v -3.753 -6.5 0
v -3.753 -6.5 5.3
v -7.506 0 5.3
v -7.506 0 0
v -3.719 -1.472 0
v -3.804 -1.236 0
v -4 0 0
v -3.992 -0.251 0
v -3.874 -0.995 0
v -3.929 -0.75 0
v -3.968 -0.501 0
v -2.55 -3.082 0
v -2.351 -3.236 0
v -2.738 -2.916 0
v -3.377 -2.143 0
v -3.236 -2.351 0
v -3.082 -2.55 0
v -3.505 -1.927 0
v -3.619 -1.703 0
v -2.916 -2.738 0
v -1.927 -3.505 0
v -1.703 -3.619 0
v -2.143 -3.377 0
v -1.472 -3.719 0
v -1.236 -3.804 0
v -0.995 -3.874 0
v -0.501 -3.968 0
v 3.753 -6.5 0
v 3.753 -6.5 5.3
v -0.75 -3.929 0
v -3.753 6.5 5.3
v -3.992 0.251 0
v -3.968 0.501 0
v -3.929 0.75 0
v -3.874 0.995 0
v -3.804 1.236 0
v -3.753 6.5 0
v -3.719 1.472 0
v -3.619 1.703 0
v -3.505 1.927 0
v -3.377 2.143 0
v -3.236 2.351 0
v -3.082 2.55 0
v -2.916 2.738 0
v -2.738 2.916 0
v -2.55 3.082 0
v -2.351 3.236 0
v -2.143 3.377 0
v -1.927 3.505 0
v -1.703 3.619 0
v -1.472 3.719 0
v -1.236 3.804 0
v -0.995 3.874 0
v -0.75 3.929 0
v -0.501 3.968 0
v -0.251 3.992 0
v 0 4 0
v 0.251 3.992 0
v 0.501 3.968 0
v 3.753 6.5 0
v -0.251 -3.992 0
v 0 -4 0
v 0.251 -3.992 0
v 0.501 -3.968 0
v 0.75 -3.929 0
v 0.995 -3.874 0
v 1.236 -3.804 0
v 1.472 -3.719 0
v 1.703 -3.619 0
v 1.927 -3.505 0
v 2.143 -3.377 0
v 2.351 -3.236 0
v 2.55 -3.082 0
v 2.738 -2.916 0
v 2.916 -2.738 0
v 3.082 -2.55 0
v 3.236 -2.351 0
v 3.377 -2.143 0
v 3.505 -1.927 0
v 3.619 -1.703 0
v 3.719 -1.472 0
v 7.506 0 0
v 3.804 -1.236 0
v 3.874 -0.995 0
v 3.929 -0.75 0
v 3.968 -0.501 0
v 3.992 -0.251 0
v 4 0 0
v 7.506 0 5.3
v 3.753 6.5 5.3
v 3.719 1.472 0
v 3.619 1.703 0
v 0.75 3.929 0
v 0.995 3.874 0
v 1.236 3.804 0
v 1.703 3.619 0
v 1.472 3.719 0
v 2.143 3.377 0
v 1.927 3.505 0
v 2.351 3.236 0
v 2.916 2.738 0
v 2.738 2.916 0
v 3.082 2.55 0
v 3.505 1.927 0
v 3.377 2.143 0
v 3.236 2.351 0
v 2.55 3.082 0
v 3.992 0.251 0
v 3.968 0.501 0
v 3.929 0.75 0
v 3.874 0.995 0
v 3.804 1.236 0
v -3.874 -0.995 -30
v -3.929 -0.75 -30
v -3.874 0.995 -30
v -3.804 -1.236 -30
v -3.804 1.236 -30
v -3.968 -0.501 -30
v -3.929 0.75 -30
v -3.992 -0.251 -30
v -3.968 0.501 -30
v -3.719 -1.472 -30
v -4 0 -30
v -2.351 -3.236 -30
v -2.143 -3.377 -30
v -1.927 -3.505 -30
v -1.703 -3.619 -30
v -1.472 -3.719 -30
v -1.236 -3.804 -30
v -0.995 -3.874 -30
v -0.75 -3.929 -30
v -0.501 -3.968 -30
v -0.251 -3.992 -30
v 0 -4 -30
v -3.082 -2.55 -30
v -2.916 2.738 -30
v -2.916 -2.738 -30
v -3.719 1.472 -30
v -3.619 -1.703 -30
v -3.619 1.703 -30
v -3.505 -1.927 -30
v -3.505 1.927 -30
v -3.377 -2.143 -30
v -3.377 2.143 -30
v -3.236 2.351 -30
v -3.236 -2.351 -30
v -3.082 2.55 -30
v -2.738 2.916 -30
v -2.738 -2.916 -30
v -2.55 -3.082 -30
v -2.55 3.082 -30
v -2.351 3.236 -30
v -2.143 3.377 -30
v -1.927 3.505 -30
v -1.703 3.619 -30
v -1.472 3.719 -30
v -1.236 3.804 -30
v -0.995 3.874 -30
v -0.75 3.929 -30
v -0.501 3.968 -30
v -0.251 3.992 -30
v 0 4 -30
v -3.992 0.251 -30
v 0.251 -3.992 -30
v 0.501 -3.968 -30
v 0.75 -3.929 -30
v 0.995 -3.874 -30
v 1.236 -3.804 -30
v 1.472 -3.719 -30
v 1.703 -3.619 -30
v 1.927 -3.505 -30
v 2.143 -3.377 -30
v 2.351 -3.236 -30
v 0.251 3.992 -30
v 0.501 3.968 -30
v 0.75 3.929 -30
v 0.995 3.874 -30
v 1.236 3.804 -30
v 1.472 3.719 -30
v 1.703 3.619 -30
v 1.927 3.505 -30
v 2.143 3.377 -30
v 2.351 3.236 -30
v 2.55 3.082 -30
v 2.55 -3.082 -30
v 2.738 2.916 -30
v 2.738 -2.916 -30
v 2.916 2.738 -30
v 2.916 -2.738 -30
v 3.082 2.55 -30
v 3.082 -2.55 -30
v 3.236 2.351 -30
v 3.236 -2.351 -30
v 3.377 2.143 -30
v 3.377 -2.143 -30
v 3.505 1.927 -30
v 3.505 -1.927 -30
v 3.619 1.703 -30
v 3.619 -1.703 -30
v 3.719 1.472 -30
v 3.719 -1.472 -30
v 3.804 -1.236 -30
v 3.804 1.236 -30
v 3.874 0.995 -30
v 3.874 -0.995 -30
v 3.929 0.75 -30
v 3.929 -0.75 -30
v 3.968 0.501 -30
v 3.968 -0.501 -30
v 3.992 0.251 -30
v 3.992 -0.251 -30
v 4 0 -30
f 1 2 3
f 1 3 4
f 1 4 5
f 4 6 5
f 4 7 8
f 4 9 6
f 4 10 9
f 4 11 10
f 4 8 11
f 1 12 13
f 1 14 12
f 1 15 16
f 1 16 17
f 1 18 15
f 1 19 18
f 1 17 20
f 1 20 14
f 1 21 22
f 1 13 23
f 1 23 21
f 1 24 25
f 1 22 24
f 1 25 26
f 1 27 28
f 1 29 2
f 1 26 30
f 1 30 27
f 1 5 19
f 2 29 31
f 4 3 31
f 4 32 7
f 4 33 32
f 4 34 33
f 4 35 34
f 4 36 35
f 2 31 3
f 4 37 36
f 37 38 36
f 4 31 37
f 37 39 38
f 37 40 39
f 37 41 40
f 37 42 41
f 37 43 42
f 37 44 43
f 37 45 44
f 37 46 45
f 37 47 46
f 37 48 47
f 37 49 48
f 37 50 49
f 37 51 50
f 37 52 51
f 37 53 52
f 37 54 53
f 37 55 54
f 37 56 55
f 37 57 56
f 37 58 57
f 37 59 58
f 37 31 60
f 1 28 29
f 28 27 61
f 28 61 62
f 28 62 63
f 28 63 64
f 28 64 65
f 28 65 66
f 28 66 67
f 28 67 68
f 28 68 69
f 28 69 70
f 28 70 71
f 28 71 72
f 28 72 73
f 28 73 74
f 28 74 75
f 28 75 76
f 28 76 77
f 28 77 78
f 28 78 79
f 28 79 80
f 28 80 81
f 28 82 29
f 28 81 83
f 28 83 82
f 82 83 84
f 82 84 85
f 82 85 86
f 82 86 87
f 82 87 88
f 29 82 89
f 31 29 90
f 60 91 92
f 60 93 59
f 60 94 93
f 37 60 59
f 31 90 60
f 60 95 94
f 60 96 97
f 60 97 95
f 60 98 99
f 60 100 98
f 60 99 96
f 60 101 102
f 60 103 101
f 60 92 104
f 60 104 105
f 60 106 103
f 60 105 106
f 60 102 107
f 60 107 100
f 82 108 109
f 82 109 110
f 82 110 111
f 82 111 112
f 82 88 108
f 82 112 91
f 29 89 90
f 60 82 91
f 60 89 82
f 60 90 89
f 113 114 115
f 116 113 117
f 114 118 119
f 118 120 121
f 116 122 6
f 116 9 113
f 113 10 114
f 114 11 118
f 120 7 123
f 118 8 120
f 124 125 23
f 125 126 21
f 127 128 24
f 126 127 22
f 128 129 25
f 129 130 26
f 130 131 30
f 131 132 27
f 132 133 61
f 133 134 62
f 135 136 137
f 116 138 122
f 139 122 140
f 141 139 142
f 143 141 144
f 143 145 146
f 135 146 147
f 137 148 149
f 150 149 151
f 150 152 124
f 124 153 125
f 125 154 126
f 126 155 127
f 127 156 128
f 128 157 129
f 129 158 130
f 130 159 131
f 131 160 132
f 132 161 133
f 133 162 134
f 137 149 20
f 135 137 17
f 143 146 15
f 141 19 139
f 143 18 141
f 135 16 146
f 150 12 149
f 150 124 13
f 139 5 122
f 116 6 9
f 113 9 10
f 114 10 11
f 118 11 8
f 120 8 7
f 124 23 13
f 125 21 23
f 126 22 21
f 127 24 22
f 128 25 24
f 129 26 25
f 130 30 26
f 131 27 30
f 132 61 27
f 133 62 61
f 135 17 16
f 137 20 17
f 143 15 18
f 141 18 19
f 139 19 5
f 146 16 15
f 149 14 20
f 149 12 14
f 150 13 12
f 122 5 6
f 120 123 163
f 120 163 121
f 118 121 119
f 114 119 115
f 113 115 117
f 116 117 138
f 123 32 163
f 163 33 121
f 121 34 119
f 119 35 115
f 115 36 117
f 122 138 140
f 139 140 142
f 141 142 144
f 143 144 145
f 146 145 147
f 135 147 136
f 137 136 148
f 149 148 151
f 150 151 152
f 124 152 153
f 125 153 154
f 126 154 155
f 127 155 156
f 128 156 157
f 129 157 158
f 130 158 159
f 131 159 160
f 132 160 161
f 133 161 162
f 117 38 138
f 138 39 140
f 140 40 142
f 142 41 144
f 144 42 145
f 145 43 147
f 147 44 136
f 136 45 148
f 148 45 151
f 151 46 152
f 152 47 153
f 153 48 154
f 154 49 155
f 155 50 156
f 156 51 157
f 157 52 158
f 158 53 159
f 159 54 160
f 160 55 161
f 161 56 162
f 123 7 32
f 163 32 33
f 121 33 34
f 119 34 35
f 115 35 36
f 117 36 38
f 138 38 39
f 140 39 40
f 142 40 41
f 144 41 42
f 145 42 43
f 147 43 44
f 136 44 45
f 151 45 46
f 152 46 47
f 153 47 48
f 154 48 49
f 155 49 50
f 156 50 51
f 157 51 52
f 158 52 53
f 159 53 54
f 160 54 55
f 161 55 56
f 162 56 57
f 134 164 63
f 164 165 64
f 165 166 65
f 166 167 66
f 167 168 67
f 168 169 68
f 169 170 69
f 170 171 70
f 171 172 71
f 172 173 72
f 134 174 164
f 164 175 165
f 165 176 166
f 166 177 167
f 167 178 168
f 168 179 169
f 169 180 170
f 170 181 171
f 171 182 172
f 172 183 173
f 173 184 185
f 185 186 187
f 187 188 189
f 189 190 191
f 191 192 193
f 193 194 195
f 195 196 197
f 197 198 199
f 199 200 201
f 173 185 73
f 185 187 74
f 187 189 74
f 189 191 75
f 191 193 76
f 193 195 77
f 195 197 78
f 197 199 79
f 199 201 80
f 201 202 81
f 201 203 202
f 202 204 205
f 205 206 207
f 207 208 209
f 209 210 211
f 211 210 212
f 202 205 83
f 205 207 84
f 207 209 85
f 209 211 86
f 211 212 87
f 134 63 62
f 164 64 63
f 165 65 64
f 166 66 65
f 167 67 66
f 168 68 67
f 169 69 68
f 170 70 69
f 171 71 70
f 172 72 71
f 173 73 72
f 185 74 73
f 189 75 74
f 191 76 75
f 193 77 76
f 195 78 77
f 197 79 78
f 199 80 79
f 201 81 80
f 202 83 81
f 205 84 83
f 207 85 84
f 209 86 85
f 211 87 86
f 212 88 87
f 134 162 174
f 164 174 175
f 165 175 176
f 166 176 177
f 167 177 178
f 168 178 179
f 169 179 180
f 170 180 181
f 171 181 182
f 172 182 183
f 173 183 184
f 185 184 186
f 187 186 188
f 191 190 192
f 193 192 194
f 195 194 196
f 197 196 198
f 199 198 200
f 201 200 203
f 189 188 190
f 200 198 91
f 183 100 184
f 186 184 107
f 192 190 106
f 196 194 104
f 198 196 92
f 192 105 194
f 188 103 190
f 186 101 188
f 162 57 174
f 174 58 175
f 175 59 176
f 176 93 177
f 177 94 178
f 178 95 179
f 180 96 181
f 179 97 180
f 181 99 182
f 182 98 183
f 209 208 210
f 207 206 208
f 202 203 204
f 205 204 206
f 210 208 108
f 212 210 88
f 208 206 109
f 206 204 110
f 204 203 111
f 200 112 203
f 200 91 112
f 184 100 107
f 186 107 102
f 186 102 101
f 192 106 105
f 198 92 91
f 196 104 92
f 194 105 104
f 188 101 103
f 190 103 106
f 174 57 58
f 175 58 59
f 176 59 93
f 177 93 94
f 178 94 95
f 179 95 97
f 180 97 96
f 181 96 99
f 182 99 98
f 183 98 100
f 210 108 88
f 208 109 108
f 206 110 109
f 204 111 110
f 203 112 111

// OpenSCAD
// M8 六角ボルト
$fn = 100;

// 寸法
across_flats = 13;      // 対辺距離
head_height  = 5.3;     // 頭部高さ
shank_dia    = 8;       // シャンク直径
shank_len    = 30;      // シャンク長さ

// 対辺距離から外接円半径を計算
head_radius = across_flats / (2 * cos(30));

// 頭部(六角柱):底面が z=0、上面が z=head_height
translate([0, 0, head_height/2])
    cylinder(h = head_height, r = head_radius, center = true, $fn = 6);

// シャンク(円柱):z=0 から z<0 方向へ伸ばす
translate([0, 0, -shank_len])
    cylinder(h = shank_len, d = shank_dia, $fn = 100);
